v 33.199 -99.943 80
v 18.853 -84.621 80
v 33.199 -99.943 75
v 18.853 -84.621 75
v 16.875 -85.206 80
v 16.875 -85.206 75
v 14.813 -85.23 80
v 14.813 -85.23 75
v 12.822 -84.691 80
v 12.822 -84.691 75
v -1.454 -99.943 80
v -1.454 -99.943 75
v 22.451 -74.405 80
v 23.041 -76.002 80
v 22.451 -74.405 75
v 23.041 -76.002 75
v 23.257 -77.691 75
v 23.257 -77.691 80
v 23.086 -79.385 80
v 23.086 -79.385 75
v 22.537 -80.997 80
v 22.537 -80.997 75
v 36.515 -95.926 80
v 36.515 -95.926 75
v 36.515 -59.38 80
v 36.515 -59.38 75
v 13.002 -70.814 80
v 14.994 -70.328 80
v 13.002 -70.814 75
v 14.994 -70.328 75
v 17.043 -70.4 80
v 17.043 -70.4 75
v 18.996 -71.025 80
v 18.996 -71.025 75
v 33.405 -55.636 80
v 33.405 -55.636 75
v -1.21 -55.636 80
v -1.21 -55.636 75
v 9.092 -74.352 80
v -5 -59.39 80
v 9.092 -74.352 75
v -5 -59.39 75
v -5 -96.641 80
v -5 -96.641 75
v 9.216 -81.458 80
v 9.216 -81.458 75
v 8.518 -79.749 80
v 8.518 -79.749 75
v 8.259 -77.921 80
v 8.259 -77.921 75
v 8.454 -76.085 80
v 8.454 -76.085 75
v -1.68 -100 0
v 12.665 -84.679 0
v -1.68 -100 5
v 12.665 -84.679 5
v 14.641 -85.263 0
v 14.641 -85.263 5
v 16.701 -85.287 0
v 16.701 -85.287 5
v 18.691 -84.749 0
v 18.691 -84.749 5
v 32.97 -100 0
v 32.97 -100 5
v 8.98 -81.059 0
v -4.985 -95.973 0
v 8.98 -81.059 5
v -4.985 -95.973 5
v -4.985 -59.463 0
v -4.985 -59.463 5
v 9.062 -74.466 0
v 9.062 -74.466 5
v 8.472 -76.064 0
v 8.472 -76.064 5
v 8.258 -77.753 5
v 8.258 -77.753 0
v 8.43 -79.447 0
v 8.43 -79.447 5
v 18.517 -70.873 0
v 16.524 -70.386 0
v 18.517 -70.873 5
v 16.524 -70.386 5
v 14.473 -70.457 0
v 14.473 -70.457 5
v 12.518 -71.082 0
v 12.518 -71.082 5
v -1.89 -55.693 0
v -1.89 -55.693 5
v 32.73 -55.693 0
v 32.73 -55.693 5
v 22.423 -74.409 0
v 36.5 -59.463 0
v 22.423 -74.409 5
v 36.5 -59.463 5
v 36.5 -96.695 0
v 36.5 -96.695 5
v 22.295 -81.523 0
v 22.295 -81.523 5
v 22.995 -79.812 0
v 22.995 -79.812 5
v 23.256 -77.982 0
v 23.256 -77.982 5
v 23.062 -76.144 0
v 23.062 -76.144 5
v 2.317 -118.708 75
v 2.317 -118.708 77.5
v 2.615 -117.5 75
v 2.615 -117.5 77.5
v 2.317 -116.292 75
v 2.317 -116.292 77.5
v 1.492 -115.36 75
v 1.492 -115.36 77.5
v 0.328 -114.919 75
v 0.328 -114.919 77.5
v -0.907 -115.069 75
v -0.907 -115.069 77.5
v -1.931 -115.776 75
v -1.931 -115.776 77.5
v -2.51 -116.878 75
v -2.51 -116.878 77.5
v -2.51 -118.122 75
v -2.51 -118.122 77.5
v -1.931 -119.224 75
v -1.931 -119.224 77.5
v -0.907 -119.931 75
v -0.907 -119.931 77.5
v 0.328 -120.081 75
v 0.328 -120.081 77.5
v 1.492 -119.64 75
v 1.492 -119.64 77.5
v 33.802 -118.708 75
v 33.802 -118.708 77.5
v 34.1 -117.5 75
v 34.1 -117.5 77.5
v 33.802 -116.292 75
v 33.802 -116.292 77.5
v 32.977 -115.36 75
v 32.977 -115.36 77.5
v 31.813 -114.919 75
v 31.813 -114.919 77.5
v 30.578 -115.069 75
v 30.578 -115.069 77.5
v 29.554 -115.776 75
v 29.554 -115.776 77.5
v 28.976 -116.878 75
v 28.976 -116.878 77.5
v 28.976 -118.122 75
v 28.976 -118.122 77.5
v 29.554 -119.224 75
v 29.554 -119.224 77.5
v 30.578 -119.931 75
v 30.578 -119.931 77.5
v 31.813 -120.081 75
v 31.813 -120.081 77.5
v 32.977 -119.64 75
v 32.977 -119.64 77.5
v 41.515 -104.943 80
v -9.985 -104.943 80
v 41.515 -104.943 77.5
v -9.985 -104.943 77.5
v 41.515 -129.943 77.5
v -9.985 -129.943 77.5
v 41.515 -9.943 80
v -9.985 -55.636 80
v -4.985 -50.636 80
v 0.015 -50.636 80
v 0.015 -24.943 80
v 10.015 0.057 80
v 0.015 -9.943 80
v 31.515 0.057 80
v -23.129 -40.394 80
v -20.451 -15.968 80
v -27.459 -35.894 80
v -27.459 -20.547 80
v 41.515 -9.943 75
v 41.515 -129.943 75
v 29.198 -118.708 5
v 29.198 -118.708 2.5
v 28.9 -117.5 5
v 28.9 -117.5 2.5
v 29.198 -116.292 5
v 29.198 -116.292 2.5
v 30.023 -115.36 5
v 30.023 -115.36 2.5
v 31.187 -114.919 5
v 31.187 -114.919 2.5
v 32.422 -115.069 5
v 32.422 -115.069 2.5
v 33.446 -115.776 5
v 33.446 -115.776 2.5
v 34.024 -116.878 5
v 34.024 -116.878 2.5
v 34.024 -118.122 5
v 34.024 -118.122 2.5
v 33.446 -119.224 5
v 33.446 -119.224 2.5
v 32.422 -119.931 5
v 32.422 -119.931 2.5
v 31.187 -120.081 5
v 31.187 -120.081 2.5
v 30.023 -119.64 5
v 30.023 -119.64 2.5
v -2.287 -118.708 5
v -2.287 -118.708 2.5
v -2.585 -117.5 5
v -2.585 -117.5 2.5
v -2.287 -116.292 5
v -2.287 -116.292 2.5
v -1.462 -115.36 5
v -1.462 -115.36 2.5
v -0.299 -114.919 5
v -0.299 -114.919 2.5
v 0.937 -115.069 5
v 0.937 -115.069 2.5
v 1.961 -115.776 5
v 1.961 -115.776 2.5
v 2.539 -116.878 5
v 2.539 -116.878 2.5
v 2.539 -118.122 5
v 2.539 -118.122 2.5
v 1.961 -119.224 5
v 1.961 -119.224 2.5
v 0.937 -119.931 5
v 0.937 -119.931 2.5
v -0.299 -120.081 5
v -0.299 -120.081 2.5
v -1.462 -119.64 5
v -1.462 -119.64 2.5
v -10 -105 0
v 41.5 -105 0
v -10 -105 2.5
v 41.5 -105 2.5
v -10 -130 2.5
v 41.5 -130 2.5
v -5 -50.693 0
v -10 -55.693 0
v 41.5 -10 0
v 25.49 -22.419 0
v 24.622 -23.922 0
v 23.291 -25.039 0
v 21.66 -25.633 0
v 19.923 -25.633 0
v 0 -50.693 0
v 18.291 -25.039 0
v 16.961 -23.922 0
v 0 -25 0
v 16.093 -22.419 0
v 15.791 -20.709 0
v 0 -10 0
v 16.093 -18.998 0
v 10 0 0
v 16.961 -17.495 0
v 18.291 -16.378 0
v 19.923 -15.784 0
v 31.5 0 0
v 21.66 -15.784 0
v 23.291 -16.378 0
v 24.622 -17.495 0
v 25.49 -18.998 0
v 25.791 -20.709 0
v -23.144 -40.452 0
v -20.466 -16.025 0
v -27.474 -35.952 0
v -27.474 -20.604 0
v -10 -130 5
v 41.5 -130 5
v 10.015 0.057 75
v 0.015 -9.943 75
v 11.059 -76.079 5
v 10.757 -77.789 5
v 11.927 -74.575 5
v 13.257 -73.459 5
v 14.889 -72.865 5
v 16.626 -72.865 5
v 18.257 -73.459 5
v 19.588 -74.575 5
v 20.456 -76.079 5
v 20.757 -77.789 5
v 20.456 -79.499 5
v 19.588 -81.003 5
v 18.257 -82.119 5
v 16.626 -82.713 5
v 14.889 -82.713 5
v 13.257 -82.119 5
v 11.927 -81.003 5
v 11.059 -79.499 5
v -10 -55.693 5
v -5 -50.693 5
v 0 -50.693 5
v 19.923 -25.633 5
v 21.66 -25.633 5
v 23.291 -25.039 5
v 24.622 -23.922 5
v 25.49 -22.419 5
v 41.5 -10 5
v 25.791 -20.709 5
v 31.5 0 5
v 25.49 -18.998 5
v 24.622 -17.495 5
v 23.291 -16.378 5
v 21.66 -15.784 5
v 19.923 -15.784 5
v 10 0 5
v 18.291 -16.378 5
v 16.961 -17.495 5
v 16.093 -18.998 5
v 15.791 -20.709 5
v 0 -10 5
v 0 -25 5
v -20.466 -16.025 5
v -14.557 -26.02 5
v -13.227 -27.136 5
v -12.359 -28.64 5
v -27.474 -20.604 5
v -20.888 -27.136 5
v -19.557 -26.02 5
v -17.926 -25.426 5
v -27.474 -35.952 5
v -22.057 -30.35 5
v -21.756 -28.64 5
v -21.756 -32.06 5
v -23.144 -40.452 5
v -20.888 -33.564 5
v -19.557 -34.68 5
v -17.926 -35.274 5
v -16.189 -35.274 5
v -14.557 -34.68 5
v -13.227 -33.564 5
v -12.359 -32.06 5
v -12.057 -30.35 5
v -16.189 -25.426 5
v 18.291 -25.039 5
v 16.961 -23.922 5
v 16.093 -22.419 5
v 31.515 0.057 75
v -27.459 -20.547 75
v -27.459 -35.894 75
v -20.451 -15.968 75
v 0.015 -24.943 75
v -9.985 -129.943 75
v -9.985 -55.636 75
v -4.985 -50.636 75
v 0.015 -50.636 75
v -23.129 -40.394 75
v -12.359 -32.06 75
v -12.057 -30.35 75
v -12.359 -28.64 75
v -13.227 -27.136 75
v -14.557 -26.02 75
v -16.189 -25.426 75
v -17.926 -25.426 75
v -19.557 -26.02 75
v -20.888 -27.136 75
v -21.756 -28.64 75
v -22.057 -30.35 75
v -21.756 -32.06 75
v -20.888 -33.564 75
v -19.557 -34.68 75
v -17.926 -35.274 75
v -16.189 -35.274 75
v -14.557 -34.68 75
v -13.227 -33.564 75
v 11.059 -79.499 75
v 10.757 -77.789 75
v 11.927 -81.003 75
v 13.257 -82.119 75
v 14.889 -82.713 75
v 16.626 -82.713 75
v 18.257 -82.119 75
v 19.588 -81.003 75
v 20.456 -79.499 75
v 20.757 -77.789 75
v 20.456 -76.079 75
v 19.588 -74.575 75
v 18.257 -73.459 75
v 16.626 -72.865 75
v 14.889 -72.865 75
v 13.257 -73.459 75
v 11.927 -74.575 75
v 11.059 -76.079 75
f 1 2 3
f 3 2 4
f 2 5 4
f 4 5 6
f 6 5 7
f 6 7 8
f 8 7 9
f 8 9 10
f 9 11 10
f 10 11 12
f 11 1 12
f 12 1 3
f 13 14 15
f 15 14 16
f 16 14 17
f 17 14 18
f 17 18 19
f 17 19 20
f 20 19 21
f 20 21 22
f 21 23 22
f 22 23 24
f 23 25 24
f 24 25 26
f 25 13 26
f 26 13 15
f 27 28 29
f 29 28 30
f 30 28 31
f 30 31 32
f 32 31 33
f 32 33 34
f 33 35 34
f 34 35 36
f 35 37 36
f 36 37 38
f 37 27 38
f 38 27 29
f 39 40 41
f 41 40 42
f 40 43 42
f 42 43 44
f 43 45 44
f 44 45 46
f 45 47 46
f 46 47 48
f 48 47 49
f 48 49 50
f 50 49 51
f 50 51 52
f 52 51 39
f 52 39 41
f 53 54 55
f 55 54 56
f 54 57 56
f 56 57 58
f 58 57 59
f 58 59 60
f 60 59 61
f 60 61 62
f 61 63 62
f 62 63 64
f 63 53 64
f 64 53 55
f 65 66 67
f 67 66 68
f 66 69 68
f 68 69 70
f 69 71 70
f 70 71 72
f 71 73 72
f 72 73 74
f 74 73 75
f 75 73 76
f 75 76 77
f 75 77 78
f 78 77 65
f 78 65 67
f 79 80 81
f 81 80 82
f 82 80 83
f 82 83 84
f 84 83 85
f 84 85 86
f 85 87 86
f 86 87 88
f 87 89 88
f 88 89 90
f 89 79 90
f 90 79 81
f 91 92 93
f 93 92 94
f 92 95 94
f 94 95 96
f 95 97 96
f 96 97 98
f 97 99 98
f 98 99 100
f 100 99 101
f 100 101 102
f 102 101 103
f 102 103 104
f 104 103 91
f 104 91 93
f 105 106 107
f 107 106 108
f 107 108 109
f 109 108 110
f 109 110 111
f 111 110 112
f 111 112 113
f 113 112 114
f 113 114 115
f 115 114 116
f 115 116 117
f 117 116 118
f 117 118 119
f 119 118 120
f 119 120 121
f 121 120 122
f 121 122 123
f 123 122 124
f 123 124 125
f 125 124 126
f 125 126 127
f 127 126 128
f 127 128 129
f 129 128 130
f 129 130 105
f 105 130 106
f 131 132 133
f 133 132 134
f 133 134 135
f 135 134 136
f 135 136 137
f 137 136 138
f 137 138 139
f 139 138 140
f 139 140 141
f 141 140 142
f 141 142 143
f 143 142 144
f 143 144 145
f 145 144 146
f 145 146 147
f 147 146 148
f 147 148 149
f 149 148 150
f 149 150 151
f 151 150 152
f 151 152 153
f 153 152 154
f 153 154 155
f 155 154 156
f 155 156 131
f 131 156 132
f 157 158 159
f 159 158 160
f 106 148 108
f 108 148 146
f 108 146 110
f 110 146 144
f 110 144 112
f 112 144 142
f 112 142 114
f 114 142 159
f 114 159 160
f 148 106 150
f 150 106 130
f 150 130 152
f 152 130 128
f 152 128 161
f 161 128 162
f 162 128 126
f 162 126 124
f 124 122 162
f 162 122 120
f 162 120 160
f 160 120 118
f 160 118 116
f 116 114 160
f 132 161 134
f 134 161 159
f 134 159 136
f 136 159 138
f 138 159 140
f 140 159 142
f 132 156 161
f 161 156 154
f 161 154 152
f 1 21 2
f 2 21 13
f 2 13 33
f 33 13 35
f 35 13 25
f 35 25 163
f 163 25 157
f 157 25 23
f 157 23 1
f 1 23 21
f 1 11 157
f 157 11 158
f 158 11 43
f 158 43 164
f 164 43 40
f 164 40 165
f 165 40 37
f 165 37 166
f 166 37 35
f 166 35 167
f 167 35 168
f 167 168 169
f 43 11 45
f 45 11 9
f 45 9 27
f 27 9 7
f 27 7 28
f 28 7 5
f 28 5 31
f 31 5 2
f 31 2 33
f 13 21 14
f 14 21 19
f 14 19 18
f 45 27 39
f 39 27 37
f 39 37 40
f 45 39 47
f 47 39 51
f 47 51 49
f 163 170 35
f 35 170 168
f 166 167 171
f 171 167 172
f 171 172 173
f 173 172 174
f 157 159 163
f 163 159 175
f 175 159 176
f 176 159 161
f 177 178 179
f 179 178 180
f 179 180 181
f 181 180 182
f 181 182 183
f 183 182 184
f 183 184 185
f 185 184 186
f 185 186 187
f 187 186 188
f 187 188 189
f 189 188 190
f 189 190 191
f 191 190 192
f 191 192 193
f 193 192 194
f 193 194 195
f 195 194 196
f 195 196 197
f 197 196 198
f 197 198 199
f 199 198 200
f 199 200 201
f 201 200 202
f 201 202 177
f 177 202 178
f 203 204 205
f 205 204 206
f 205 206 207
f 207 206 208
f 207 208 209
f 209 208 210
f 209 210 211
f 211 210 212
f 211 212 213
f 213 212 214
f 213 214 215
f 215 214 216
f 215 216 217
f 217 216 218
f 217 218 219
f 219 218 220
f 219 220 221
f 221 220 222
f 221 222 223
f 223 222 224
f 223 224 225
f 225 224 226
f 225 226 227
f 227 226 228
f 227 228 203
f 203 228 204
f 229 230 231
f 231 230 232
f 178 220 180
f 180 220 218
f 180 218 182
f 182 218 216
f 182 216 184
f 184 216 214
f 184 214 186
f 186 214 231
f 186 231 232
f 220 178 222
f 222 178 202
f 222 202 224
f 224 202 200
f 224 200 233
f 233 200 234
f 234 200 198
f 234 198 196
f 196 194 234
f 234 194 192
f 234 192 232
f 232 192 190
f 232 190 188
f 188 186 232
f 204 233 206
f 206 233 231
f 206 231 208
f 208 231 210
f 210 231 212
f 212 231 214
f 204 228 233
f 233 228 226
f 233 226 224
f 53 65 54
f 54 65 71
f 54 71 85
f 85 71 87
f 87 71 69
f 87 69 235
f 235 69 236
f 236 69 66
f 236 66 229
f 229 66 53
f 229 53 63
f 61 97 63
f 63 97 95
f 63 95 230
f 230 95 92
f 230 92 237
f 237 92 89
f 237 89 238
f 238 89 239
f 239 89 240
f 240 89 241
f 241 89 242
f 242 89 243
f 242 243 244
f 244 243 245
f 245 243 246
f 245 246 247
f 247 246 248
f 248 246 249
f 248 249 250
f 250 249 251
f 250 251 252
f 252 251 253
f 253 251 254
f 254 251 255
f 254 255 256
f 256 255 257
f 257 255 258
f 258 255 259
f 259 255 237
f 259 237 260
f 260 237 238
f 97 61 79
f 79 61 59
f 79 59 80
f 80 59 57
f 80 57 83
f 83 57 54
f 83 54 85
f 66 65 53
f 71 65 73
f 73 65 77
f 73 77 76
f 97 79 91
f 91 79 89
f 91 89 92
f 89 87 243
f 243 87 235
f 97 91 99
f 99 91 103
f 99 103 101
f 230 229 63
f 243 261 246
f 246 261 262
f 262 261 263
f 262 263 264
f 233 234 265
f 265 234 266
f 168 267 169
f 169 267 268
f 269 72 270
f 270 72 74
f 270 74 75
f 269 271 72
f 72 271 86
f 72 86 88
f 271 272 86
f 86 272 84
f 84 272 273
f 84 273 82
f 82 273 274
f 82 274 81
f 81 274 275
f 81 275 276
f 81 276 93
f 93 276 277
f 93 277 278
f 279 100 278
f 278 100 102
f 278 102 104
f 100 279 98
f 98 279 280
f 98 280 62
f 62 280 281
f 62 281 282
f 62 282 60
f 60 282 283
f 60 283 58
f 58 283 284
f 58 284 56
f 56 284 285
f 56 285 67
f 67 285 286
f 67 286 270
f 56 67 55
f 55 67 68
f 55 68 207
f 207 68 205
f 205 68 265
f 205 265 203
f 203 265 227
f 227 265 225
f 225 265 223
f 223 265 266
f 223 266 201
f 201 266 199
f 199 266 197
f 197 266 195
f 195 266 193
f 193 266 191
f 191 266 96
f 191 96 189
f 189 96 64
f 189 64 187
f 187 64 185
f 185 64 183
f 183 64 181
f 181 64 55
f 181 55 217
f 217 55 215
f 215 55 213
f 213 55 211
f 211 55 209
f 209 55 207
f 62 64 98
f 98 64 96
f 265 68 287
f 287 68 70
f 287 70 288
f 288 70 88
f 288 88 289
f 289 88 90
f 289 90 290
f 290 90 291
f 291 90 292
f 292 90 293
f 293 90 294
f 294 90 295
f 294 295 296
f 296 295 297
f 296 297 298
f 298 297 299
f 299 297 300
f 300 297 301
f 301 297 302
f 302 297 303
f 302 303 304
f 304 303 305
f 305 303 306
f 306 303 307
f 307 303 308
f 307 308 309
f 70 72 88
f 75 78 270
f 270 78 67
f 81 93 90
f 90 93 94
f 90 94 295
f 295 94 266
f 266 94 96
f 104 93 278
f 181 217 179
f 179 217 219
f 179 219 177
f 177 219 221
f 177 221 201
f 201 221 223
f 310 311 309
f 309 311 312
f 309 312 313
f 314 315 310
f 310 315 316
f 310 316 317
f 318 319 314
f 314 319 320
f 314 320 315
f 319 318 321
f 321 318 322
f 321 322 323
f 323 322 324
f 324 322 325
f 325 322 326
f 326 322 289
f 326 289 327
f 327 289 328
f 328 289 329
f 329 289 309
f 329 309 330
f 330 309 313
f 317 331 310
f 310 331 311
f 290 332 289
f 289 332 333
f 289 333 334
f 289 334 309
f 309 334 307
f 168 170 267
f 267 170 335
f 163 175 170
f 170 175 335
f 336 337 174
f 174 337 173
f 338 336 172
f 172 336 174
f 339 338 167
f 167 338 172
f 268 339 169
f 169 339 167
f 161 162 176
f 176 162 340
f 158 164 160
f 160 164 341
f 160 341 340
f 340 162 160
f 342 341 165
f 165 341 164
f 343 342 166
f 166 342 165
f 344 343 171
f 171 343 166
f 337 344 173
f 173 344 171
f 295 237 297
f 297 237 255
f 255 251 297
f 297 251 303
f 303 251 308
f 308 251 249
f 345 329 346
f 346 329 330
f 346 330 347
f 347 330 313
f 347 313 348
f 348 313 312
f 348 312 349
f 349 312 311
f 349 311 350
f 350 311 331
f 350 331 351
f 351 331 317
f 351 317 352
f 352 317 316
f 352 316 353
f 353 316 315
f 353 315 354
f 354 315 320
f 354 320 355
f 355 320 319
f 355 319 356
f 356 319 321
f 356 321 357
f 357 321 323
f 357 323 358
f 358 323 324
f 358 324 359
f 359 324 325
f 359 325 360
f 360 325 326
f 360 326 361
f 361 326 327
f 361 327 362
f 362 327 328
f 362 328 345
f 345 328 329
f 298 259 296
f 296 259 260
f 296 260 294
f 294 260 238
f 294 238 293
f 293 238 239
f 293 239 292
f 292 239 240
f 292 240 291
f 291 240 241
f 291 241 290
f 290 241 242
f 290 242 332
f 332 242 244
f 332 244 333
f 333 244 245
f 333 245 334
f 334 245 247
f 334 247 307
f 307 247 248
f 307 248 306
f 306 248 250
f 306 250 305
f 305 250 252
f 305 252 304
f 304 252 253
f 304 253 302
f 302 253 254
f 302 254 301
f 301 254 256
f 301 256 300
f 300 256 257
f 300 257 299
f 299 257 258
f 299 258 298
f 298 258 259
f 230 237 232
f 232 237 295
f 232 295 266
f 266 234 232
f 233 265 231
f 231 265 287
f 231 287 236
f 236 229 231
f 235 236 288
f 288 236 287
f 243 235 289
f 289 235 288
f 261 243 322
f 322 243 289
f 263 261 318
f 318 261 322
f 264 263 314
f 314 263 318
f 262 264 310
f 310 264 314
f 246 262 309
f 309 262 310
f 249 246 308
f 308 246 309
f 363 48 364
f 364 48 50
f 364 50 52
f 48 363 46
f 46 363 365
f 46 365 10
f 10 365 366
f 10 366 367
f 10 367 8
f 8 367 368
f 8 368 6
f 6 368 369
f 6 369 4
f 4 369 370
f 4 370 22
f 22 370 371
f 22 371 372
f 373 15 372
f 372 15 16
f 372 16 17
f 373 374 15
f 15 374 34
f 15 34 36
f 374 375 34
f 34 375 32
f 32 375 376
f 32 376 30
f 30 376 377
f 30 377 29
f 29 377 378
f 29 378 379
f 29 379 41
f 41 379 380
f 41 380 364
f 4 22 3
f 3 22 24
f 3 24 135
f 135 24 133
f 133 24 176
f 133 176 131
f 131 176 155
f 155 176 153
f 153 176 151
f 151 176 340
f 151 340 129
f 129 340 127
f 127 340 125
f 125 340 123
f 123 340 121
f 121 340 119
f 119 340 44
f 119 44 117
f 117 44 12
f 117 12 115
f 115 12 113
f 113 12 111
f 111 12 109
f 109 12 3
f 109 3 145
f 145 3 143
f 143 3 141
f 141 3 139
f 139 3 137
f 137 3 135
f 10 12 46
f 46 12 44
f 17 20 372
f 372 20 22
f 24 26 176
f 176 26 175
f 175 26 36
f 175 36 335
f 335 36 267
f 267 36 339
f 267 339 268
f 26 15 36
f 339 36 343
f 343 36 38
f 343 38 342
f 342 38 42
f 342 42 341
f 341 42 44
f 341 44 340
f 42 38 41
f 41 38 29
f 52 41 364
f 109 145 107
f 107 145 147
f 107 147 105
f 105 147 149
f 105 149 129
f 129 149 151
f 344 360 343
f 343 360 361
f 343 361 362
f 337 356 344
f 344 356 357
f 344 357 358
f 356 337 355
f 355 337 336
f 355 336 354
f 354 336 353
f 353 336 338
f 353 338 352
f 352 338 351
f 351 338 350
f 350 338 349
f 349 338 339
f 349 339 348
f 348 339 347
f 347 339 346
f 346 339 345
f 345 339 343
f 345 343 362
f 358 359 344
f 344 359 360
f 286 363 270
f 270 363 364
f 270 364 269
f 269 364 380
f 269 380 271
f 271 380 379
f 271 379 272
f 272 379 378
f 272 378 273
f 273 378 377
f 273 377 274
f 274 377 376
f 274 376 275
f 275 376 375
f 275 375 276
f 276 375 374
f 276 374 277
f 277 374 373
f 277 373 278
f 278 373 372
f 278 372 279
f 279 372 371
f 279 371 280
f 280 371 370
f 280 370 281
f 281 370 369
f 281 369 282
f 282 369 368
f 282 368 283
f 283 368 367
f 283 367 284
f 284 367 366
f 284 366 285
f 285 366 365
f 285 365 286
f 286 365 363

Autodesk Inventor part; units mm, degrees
ref_plane "YZ Plane" through (0, 0, 0) normal (1, 0, 0) x (0, 1, 0)
ref_plane "XZ Plane" through (0, 0, 0) normal (0, 1, 0) x (-1, 0, 0)
ref_plane "XY Plane" through (0, 0, 0) normal (0, 0, 1) x (1, 0, 0)
sketch "Esquisse2" plane through (0, 0, 0) normal (0, 0, 1) x (1, 0, 0)
  line L0 (0, 0) -> (41.5, 0)
  line L1 (41.5, 0) -> (41.5, -41.5)
  line L2 (0, 0) -> (41.5, -41.5) construction
  circle A0 centre (20.7915, -20.7085) radius 5
  line L3 (0, -25) -> (-20.4662, -16.0249)
  line L4 (-27.4743, -20.6039) -> (-27.4743, -35.9516)
  line L5 (-27.4743, -35.9516) -> (-23.1441, -40.4516)
  line L6 (0, 0) -> (0, -25)
  line L7 (-23.1441, -40.4516) -> (0, -50.6933)
  line L8 (-20.4662, -16.0249) -> (-27.4743, -20.6039)
  line L9 (41.5, -41.5) -> (41.5, -50.6933)
  line L10 (0, -50.6933) -> (-5, -50.6933)
  line L11 (-10, -55.6933) -> (-10, -130)
  line L12 (-10, -130) -> (41.5, -130)
  line L13 (41.5, -130) -> (41.5, -50.6933)
  line L14 (-5, -50.6933) -> (-10, -55.6933)
  point P0 (-10, -50.6933)
  dimension "d0" = 41.5
  dimension "d1" = 41.5
  dimension "d2" = 10
  dimension "d32" = 25
  dimension "d45" = 10
  dimension "d46" = 5
  dimension "d47" = 5
  dimension "d48" = 130
extrude "Extrusion3" add sketch "Esquisse2" along normal blind 5
sketch "Esquisse4" plane through (0, 0, 5) normal (0, 0, 1) x (1, 0, 0)
  circle A0 centre (-17.0573, -30.35) radius 5
  line L0 (0, -25) -> (-20.4662, -16.0249) projected
  point P0 (0, 0)
  dimension "d53" = 10
  dimension "d54" = 11.75
extrude "Extrusion4" add sketch "Esquisse4" along normal blind 70
sketch "Esquisse5" plane through (-17.0573, -30.35, 75) normal (0, 0, 1) x (1, 0, 0)
  line L0 (17.0722, 30.4073) -> (58.5722, 30.4073)
  line L1 (58.5722, 30.4073) -> (58.5722, -11.0927)
  line L2 (17.0722, 5.4073) -> (-3.394, 14.3825)
  line L3 (-10.4021, 9.8034) -> (-10.4021, -5.5443)
  line L4 (-10.4021, -5.5443) -> (-6.072, -10.0443)
  line L5 (17.0722, 30.4073) -> (17.0722, 5.4073)
  line L6 (-6.072, -10.0443) -> (17.0722, -20.2859)
  line L7 (-3.394, 14.3825) -> (-10.4021, 9.8034)
  line L8 (58.5722, -11.0927) -> (58.5722, -20.2859)
  line L9 (17.0722, -20.2859) -> (12.0722, -20.2859)
  line L10 (7.0722, -25.2859) -> (7.0722, -99.5927)
  line L11 (7.0722, -99.5927) -> (58.5722, -99.5927)
  line L12 (58.5722, -99.5927) -> (58.5722, -20.2859)
  line L13 (12.0722, -20.2859) -> (7.0722, -25.2859)
  point P0 (17.0573, 30.35)
  point P1 (7.0722, -20.2859)
  dimension "d57" = 41.5
  dimension "d58" = 41.5
  dimension "d60" = 25
  dimension "d61" = 10
  dimension "d62" = 5
  dimension "d63" = 5
  dimension "d64" = 130
chamfer "Chanfrein7" distance 10 angle 45 1 edges at (0, 0, 2.5)
chamfer "Chanfrein8" distance 10 angle 45 1 edges at (41.5, 0, 2.5)
extrude "Extrusion6" add sketch "Esquisse5" along normal blind 5
chamfer "Chanfrein9" distance 10 angle 45 1 edges at (41.5149, 0.0573, 77.5)
chamfer "Chanfrein10" distance 10 angle 45 1 edges at (0.0149, 0.0573, 77.5)
sketch "Esquisse6" plane through (0, 0, 0) normal (0, 0, -1) x (-1, 0, 0)
  line L0 (-41.5, -130) -> (9.9851, -130)
  line L1 (10, -105) -> (-41.5, -105)
  line L2 (-41.5, -105) -> (-41.5, -130)
  line L3 (9.7923, -105) -> (10, -105)
  line L4 (10, -130) -> (-41.5, -130) projected
  line L5 (9.8887, -130) -> (10, -130)
  line L6 (10, -130) -> (10, -55.6933) projected
  line L7 (10, -105) -> (10, -130)
  point P0 (0, 0)
  dimension "d87" = 25
extrude "Extrusion7" cut sketch "Esquisse6" against normal blind 2.5
sketch "Esquisse7" plane through (0, 0, 2.5) normal (0, 0, -1) x (-1, 0, 0)
  circle A0 centre (-31.5, -117.5) radius 2.6
  line L0 (-41.5, -130) -> (-41.5, -105) projected
  line L1 (-41.5, -105) -> (10, -105) projected
  circle A1 centre (-0.0149, -117.5) radius 2.6
  line L2 (9.9851, -105) -> (9.9851, -130) projected
  point P0 (0, 0)
  dimension "d96" = 5.2
  dimension "d97" = 10
  dimension "d98" = 12.5
  dimension "d99" = 5.2
  dimension "d100" = 10
extrude "Extrusion8" cut sketch "Esquisse7" against normal blind 2.5
sketch "Esquisse8" plane through (-17.0573, -30.35, 80) normal (0, 0, 1) x (1, 0, 0)
  line L0 (58.5573, -99.65) -> (58.5573, 20.35) projected
  line L1 (58.5573, -99.5927) -> (58.5573, -99.65)
  line L2 (7.0722, -99.65) -> (7.0722, -99.5927)
  line L3 (58.5722, -99.5927) -> (7.0722, -99.5927) projected
  line L4 (58.5722, -99.5927) -> (7.0722, -99.5927)
  line L5 (7.0722, -99.5927) -> (7.0722, -74.5927)
  line L6 (7.0722, -74.5927) -> (58.5722, -74.5927)
  line L7 (58.5722, -74.5927) -> (58.5722, -99.5927)
  point P0 (17.0573, 30.35)
  dimension "d103" = 25
extrude "Extrusion10" cut sketch "Esquisse8" against normal blind 2.5
sketch "Esquisse9" plane through (-17.0573, -30.35, 77.5) normal (0, 0, 1) x (1, 0, 0)
  circle A0 centre (17.0722, -87.15) radius 2.6 projected
  circle A1 centre (17.0722, -87.15) radius 2.6
  circle A2 centre (48.5573, -87.15) radius 2.6 projected
  circle A3 centre (48.5573, -87.15) radius 2.6
  point P0 (17.0573, 30.35)
extrude "Extrusion11" cut sketch "Esquisse9" against normal blind 2.5
sketch "Esquisse10" plane through (0, 0, 0) normal (0, 0, -1) x (-1, 0, 0)
  line L0 (0, -50.6933) -> (9.9851, -50.6933) construction
  line L1 (9.9851, -50.6933) -> (9.9851, -105) construction
  line L2 (0, -50.6933) -> (-41.5, -50.6933) construction
  line L3 (-41.5, -10) -> (-41.5, -105) construction
  line L4 (-41.5, -105) -> (-41.5, -50.6933) construction
  line L5 (-31.0711, -55.6933) -> (4.9851, -55.6933)
  line L6 (4.9851, -55.6933) -> (4.9851, -100)
  line L7 (-31.0711, -55.6933) -> (-36.5, -55.6933)
  line L8 (-36.5, -55.6933) -> (-36.5, -59.2233) construction
  line L9 (-36.5, -55.6933) -> (-33.2298, -55.6933) construction
  line L10 (-41.5, -105) -> (9.9851, -105) construction
  line L11 (-36.5, -55.6933) -> (-36.5, -100)
  line L12 (-36.5, -100) -> (4.9851, -100)
  line L13 (-36.5, -55.6933) -> (4.9851, -100) construction
  line L14 (4.9851, -55.6933) -> (-36.5, -100) construction
  circle A0 centre (-15.7574, -77.8466) radius 7.5
  line L15 (-36.5, -100) -> (-36.5, -96.47) construction
  line L16 (-36.5, -100) -> (-32.97, -100) construction
  line L17 (-32.97, -100) -> (-18.6905, -84.7493)
  line L18 (-9.0624, -74.4663) -> (4.9851, -59.4633)
  line L19 (-12.5184, -71.0821) -> (1.8904, -55.6933)
  line L20 (-12.665, -84.6794) -> (1.6799, -100)
  line L21 (-8.98, -81.0585) -> (4.9851, -95.9735)
  line L22 (-36.5, -59.2233) -> (-36.5, -96.6948)
  line L23 (-32.7299, -55.6933) -> (1.8904, -55.6933)
  line L24 (4.9851, -59.4633) -> (4.9851, -95.9735)
  line L25 (1.6799, -100) -> (-32.97, -100)
  line L26 (-32.7299, -55.6933) -> (-18.5171, -70.8728)
  line L27 (-36.5, -59.4633) -> (-22.4232, -74.409)
  line L28 (-36.5, -96.6948) -> (-22.2945, -81.5231)
  point P0 (0, 0)
  point P1 (9.9851, -104.9427)
  point P2 (-41.5149, -104.9427)
  dimension "d57" = 41.5
  dimension "d58" = 41.5
  dimension "d60" = 25
  dimension "d61" = 10
  dimension "d62" = 5
  dimension "d63" = 5
  dimension "d64" = 130
  dimension "d118" = 15
  dimension "d110" = 5
  dimension "d111" = 5
  dimension "d116" = 5
  dimension "d117" = 5
extrude "Extrusion12" cut sketch "Esquisse10" against normal blind 5 contours L5 L19 A0 L26 L7 | L6 L21 A0 L18 | A0 L28 L11 L27 | A0 L20 L12 L17
sketch "Esquisse11" plane through (-17.0573, -30.35, 80) normal (0, 0, 1) x (1, 0, 0)
  line L0 (48.5721, -20.2859) -> (58.5722, -20.2859) construction
  line L1 (58.5722, -20.2859) -> (58.5722, -74.5927) construction
  line L2 (48.5721, -20.2859) -> (7.0573, -20.2859) construction
  line L3 (17.501, -25.2859) -> (53.5722, -25.2859)
  line L4 (53.5722, -25.2859) -> (53.5722, -69.5927)
  line L5 (17.501, -25.2859) -> (12.0573, -25.2859)
  line L6 (12.0573, -25.2859) -> (12.0573, -28.8108) construction
  line L7 (12.0573, -25.2859) -> (15.3423, -25.2859) construction
  line L8 (7.0573, -74.5927) -> (58.5722, -74.5927) construction
  line L9 (12.0573, -25.2859) -> (12.0573, -69.5927)
  line L10 (12.0573, -69.5927) -> (53.5722, -69.5927)
  line L11 (12.0573, -25.2859) -> (53.5722, -69.5927) construction
  line L12 (53.5722, -25.2859) -> (12.0573, -69.5927) construction
  circle A0 centre (32.8147, -47.4393) radius 7.5
  line L13 (12.0573, -69.5927) -> (12.0573, -66.0575) construction
  line L14 (12.0573, -69.5927) -> (15.6035, -69.5927) construction
  line L15 (15.6035, -69.5927) -> (29.8797, -54.3412)
  line L16 (39.5079, -44.0553) -> (53.5722, -29.0303)
  line L17 (36.0535, -40.6747) -> (50.4623, -25.2859)
  line L18 (35.9101, -54.2708) -> (50.2563, -69.5927)
  line L19 (39.5942, -50.647) -> (53.5722, -65.5758)
  line L20 (12.0573, -28.8108) -> (12.0573, -66.2913)
  line L21 (15.8474, -25.2859) -> (50.4623, -25.2859)
  line L22 (53.5722, -29.0303) -> (53.5722, -65.5758)
  line L23 (50.2563, -69.5927) -> (15.6035, -69.5927)
  line L24 (15.8474, -25.2859) -> (30.0589, -40.464)
  line L25 (12.0573, -29.0404) -> (26.1489, -44.0018)
  line L26 (12.0573, -66.2913) -> (26.2734, -51.1082)
  line L27 (58.5722, -74.5927) -> (58.5722, 20.4073) projected
  line L28 (7.0722, -74.5927) -> (58.5722, -74.5927) projected
  line L29 (17.0722, -20.2859) -> (12.0722, -20.2859) projected
  line L30 (7.0722, -25.2859) -> (7.0722, -74.5927) projected
  line L31 (12.0573, -29.0404) -> (12.0573, -66.2913)
  point P0 (17.0573, 30.35)
  point P1 (0, 0)
  point P2 (58.5572, -74.5302)
  point P3 (7.0572, -74.5302)
  dimension "d127" = 15
  dimension "d123" = 5
  dimension "d124" = 5
  dimension "d126" = 5
  dimension "d128" = 0
  dimension "d129" = 0
  dimension "d130" = 0
extrude "Extrusion13" cut sketch "Esquisse11" against normal blind 5 contours L3 L17 A0 L24 L5 | L4 L19 A0 L16 | A0 L26 L9 L25 | A0 L18 L10 L15
sketch "Esquisse14" plane through (-17.0573, -30.35, 75) normal (0, 0, -1) x (-1, 0, 0)
  arc A0 (-39.5079, -44.0553) -> (-39.5942, -50.647) centre (-32.8147, -47.4393) ccw projected
  circle A1 centre (-32.8147, -47.4393) radius 5
  point P0 (-17.0573, 30.35)
  dimension "d136" = 10
extrude "Extrusion14" add sketch "Esquisse14" along normal blind 70
equation "\"d47\" = d46"
equation "\"d63\" = d62"
properties part number "Forearm1 v2" material "Plastique ABS"
